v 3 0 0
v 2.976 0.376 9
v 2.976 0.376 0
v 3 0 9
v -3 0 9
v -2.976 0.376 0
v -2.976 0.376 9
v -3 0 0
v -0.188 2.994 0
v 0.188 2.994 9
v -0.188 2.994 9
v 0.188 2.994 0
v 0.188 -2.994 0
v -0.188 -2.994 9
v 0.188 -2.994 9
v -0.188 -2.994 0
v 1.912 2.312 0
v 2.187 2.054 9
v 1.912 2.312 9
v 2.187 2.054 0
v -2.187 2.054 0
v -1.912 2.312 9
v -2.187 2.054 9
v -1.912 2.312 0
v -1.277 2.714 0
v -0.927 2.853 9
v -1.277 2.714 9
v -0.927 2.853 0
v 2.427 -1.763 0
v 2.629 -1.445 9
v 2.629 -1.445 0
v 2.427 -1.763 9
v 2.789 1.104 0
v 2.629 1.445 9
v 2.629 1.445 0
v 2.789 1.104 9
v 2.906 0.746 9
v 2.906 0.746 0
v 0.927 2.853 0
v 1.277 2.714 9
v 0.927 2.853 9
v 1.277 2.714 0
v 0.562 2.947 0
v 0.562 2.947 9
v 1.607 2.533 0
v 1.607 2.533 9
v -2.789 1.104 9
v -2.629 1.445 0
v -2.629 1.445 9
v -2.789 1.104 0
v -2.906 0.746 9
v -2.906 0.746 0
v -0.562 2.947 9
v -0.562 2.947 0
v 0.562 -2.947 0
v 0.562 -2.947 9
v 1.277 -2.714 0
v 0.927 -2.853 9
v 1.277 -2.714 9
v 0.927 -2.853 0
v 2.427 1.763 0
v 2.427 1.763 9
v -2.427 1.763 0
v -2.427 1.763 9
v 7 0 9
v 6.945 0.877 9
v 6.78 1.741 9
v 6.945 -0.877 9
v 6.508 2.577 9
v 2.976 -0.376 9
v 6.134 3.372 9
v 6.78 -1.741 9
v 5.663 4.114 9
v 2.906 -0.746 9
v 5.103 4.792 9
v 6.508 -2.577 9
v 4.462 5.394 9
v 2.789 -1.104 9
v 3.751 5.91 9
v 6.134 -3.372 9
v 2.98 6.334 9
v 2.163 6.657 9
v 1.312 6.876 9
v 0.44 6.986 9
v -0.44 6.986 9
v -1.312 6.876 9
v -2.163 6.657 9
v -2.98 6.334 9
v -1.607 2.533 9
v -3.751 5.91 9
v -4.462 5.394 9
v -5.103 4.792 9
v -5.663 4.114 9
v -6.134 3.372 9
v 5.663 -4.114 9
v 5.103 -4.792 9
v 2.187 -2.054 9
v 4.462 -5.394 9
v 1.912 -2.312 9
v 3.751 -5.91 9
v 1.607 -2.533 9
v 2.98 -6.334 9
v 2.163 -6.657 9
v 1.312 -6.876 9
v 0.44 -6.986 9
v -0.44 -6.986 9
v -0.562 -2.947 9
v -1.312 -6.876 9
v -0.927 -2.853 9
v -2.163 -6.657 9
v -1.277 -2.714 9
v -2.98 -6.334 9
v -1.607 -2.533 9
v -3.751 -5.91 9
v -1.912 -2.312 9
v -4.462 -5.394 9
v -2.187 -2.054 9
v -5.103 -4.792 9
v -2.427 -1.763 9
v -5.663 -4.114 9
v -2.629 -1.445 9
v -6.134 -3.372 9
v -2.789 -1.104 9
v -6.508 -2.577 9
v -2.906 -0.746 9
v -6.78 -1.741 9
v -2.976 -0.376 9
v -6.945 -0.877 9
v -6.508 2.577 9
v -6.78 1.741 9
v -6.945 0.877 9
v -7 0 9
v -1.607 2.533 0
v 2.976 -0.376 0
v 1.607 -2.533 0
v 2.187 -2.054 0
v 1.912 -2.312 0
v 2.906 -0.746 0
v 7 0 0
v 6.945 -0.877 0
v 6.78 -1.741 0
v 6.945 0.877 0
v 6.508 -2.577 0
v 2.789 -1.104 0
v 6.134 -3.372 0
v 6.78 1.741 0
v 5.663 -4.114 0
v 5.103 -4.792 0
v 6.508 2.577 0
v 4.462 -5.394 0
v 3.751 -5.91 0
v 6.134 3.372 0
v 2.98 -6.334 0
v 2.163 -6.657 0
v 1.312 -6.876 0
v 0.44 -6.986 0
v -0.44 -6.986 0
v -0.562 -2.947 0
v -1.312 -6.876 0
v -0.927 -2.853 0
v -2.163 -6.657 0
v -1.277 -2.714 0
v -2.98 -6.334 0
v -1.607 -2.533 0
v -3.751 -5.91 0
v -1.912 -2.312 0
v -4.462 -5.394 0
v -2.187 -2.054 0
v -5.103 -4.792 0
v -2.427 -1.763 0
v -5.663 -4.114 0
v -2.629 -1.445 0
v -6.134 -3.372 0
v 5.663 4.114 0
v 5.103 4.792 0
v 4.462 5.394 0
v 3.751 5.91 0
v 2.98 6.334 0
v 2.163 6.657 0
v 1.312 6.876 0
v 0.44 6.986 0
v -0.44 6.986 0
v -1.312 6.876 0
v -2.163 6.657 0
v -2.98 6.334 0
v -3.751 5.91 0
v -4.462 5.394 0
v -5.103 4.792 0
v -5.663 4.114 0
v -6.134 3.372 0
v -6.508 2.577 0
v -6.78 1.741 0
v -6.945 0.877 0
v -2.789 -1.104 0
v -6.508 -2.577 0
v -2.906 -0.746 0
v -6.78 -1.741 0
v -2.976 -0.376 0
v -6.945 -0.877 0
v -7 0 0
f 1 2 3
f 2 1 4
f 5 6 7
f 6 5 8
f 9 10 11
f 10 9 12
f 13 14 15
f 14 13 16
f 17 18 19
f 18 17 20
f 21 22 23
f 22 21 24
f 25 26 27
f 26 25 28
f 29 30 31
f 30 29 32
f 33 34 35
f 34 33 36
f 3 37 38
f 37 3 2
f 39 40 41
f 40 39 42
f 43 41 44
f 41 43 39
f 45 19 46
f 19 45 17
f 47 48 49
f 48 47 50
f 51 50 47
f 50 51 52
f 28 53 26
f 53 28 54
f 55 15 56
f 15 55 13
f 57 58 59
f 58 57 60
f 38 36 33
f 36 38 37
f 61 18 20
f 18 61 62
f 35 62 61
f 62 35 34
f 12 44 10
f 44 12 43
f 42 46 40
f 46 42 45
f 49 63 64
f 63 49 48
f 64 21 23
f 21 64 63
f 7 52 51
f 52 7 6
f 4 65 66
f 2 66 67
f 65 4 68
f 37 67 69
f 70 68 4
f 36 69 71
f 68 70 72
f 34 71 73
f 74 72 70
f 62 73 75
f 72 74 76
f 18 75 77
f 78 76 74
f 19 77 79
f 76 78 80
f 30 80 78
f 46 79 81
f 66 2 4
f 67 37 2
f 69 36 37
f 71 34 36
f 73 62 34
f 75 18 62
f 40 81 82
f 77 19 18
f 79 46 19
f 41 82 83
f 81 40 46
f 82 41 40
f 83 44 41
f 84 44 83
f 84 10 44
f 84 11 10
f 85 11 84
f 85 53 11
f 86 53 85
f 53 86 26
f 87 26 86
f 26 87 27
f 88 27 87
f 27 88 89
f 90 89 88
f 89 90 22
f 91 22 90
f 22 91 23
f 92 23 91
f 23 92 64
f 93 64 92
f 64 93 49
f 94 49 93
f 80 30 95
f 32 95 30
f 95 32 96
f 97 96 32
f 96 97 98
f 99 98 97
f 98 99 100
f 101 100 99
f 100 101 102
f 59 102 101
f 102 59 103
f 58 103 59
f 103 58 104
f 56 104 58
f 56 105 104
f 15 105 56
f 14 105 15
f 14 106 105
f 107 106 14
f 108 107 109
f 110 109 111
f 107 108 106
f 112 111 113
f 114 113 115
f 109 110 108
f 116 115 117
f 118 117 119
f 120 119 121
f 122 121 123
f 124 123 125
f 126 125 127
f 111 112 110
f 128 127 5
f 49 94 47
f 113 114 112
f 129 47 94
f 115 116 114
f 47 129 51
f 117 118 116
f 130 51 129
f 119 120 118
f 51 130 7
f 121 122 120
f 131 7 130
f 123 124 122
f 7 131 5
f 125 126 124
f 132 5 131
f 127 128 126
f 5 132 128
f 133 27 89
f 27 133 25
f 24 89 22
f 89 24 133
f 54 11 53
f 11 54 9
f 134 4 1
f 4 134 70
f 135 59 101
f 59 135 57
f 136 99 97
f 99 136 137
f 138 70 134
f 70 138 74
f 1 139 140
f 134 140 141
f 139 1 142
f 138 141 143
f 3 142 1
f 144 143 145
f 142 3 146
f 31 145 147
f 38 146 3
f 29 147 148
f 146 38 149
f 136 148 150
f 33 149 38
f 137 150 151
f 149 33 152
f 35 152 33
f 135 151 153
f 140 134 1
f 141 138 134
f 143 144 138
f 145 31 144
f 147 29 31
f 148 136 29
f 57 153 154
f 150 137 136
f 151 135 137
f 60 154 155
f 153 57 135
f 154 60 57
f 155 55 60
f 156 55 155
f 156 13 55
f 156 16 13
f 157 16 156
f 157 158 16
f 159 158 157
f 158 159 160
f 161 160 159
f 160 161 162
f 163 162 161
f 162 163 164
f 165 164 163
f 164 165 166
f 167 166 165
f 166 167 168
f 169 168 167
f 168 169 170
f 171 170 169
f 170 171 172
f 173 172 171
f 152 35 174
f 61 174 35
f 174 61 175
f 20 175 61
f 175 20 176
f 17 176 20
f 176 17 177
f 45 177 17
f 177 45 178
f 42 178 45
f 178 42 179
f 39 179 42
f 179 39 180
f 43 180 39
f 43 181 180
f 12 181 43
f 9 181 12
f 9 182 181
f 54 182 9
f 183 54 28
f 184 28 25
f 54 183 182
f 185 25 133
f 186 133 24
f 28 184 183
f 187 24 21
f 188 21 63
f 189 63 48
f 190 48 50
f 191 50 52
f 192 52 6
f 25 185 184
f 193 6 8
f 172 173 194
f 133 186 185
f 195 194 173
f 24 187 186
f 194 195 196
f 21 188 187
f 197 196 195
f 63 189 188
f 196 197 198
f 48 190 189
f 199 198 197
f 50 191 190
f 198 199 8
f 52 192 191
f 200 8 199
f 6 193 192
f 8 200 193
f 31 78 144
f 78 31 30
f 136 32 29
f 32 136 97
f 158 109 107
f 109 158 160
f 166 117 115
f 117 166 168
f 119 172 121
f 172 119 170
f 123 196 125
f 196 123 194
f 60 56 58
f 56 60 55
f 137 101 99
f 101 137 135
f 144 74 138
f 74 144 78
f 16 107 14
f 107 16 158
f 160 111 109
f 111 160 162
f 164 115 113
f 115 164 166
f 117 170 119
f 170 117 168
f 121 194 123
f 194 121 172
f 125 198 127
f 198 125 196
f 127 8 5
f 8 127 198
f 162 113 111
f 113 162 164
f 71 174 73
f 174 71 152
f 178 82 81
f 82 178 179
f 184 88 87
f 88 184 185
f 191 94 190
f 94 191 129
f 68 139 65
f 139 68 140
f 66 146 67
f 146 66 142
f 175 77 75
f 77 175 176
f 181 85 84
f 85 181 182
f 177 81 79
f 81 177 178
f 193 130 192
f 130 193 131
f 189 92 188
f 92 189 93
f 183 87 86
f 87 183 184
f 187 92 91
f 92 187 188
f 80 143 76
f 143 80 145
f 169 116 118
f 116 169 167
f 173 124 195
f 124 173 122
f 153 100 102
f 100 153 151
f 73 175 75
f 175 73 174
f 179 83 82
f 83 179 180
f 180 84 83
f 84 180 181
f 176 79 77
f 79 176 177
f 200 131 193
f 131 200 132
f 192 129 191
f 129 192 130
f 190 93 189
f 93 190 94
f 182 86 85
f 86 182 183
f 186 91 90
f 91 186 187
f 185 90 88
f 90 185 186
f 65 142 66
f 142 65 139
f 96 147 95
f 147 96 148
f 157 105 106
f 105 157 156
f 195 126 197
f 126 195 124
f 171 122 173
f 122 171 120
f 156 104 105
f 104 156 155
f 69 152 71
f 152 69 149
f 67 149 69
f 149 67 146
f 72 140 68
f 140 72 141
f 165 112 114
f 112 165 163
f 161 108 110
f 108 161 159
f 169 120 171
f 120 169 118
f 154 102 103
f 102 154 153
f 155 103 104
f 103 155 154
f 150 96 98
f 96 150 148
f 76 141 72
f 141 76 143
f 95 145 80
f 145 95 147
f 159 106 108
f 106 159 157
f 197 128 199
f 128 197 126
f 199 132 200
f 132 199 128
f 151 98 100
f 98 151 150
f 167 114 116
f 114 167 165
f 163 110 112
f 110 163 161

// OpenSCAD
$fn = 50;


difference() {
	union() {
		cylinder(h = 9, r = 7.0000000000);
	}
	union() {
		cylinder(h = 9, r = 3.0000000000);
		cylinder(h = 9, r = 3.0000000000);
		cylinder(h = 9, r = 1.5000000000);
		cylinder(h = 9, r = 1.5000000000);
		cylinder(h = 9, r = 1.5000000000);
		cylinder(h = 9, r = 1.5000000000);
		cylinder(h = 9, r = 1.5000000000);
		cylinder(h = 9, r = 1.5000000000);
	}
}
